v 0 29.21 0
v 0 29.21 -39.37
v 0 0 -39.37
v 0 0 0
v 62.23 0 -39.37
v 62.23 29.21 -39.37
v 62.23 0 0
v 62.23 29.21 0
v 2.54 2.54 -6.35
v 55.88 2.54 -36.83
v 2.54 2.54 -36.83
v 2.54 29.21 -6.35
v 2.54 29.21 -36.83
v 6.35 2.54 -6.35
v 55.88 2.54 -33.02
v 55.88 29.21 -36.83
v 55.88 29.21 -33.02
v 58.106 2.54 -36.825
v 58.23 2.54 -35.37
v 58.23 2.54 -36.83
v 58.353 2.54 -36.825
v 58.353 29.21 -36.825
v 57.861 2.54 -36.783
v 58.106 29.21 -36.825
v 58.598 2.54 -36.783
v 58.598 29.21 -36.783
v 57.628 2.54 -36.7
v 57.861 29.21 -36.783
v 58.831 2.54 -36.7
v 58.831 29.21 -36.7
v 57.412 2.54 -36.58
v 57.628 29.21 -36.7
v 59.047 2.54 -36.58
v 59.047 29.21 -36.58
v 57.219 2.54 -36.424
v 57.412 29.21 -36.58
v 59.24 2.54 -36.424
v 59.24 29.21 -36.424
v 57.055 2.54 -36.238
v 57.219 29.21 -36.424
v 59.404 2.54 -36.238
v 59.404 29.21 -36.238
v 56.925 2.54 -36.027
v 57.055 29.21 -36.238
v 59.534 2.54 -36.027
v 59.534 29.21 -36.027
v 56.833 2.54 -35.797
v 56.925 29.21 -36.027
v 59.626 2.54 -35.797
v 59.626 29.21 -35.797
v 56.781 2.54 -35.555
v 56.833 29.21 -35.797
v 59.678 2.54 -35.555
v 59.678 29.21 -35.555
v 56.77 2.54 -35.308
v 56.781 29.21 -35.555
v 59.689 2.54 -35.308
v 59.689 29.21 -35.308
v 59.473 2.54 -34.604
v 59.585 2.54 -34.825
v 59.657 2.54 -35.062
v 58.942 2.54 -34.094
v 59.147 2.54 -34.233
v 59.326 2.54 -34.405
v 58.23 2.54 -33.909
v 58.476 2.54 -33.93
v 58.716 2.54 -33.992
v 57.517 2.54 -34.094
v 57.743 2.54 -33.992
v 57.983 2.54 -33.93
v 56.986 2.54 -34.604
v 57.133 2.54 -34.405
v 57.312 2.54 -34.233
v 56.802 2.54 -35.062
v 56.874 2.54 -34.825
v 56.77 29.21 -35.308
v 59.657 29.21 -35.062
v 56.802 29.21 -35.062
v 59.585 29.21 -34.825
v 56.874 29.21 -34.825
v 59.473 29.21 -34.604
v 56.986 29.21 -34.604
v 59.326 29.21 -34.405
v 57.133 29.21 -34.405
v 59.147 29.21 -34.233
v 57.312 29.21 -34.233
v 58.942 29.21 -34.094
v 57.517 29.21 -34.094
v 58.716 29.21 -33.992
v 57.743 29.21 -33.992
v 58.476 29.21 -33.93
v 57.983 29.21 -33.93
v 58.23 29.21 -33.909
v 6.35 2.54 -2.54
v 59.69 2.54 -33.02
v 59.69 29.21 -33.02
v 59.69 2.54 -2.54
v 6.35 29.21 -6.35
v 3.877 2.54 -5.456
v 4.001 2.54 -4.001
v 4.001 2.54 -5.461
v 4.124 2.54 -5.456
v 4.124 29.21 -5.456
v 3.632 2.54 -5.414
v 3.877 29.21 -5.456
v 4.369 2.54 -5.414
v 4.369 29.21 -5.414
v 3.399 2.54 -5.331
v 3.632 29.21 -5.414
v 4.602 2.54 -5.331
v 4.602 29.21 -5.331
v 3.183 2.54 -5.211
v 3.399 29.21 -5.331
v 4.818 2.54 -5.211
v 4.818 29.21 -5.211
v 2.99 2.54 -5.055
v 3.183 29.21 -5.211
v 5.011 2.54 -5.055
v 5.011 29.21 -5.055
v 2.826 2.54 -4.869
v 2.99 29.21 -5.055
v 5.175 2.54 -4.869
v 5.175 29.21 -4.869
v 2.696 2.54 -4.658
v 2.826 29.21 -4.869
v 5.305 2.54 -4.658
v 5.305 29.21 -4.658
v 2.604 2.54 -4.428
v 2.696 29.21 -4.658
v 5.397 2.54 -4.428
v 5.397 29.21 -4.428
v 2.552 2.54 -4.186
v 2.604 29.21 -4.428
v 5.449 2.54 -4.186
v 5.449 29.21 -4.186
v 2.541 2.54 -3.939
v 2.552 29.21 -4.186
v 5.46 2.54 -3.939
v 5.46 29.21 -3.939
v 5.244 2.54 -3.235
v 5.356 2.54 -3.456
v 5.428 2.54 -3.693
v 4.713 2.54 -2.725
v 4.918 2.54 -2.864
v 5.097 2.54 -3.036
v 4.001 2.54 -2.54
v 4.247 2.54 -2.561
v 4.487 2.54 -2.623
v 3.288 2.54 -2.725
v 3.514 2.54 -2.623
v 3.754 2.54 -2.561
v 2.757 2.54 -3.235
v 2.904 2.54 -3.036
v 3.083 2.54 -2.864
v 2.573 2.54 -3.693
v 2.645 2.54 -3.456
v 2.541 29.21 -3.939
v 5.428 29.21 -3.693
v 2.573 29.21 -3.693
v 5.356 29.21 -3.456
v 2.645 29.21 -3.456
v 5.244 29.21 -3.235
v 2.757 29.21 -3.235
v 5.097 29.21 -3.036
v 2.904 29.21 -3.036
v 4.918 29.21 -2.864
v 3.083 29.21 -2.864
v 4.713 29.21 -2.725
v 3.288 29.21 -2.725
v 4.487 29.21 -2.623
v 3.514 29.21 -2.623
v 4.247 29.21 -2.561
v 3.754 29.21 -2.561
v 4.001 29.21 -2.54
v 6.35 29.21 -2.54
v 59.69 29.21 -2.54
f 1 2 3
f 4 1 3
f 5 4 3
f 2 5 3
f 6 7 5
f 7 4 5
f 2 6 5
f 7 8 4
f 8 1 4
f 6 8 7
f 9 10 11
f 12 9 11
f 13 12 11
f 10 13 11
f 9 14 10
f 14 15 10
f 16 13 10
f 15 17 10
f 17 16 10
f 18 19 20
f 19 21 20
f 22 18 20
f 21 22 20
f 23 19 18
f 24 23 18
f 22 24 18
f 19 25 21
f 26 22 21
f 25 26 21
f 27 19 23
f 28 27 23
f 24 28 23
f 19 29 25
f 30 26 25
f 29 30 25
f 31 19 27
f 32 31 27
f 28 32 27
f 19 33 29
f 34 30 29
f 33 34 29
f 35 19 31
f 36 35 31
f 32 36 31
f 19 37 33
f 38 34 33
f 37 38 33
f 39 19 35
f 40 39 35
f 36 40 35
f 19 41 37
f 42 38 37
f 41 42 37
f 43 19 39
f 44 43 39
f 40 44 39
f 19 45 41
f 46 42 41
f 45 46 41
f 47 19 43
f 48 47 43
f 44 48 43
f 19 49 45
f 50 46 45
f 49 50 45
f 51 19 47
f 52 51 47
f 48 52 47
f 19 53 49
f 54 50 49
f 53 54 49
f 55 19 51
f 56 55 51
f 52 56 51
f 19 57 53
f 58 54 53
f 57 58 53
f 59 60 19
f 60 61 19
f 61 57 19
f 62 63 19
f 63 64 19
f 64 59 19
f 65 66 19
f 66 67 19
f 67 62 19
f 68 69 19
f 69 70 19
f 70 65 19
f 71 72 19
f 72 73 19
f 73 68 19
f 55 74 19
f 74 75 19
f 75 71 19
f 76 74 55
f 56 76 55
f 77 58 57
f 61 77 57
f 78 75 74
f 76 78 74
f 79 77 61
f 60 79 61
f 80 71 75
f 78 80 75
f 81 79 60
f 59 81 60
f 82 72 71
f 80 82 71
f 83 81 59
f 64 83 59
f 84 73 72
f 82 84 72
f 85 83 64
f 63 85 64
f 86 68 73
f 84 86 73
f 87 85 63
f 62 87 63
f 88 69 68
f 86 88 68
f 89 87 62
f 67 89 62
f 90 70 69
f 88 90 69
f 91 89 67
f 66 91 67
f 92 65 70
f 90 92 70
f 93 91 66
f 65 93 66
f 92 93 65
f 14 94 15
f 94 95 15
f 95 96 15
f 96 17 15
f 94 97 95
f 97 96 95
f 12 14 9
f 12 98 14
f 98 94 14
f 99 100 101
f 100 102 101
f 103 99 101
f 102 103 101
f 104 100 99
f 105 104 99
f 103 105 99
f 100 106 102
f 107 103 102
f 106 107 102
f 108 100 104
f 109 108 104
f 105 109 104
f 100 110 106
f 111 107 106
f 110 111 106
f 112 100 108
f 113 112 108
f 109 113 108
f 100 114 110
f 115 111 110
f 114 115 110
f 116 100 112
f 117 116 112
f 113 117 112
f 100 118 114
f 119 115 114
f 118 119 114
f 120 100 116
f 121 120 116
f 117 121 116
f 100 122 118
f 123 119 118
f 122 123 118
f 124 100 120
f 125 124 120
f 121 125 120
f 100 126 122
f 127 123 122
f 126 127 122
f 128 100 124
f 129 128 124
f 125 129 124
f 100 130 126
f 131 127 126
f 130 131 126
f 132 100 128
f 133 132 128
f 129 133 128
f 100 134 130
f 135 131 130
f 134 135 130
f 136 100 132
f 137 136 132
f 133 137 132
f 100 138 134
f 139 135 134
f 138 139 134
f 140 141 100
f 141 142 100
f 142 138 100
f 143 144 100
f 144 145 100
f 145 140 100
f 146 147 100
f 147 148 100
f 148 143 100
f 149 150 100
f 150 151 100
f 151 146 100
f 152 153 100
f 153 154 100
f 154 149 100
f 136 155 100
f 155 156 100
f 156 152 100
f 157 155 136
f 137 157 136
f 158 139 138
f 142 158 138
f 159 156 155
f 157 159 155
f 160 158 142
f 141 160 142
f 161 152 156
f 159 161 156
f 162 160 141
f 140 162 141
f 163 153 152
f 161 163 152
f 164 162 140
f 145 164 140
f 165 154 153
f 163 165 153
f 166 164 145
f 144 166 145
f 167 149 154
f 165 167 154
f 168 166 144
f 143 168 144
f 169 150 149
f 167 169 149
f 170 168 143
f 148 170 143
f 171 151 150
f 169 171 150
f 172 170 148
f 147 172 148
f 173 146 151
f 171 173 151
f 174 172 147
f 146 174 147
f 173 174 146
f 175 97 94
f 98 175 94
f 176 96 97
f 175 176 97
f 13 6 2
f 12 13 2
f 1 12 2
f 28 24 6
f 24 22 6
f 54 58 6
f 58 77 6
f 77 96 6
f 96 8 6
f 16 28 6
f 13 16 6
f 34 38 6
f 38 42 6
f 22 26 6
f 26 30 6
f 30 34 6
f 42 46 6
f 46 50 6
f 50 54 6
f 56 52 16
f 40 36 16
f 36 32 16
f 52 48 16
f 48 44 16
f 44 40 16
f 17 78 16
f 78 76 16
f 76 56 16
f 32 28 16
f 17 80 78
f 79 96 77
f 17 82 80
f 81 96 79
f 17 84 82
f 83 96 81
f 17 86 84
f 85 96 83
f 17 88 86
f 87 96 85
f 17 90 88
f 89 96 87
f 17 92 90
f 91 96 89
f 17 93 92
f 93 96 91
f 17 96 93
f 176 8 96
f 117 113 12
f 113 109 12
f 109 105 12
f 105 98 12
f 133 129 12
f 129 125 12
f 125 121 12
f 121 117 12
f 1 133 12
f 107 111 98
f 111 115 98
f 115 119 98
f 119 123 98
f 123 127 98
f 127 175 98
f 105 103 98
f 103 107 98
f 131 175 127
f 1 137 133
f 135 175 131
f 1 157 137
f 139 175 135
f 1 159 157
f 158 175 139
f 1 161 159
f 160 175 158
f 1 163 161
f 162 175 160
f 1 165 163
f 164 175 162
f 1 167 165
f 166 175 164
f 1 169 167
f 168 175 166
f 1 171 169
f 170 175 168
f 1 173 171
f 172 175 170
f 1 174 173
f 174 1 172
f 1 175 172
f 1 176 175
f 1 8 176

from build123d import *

# Parameters (mm, degrees)
SKETCH1_W           = 62.23
SKETCH1_H           = 29.21
BOSS_EXTRUDE1_DEPTH = 39.37
SHELL1_T            = -2.54
BOSS_EXTRUDE2_REACH = 31.21


with BuildPart() as part:
    # Sketch1 → Boss-Extrude1 (new body)
    with BuildSketch(Plane.XY):
        with Locations((31.115, 14.605)):
            Rectangle(SKETCH1_W, SKETCH1_H)
    extrude(amount=-BOSS_EXTRUDE1_DEPTH)

    # Shell1
    shell1_openings = [part.faces().sort_by_distance(p)[0] for p in [
        (31.115, 29.21, -19.685),
    ]]
    offset(amount=SHELL1_T, openings=shell1_openings, kind=Kind.INTERSECTION)

    # Sketch2 → Boss-Extrude2 (add, up to next)
    with BuildSketch(Plane(origin=(0, 29.21, 0), x_dir=(1, 0, 0), z_dir=(0, 1, 0)), mode=Mode.PRIVATE) as boss_extrude2_sk1:
        with BuildLine():
            Line((2.54, 2.54), (4.0005, 2.54))
            ThreePointArc((4.0005, 2.54), (2.967770546, 2.967770546), (2.54, 4.0005))
            Line((2.54, 4.0005), (2.54, 2.54))
        make_face()
    boss_extrude2_tool1 = extrude(boss_extrude2_sk1.sketch, amount=-BOSS_EXTRUDE2_REACH, mode=Mode.PRIVATE) - part.part
    add(boss_extrude2_tool1.solids().sort_by_distance((2.866229, 29.21, -2.866229))[0])
    # Sketch2 → Boss-Extrude2 (add, up to next)
    with BuildSketch(Plane(origin=(0, 29.21, 0), x_dir=(1, 0, 0), z_dir=(0, 1, 0)), mode=Mode.PRIVATE) as boss_extrude2_sk2:
        with BuildLine():
            ThreePointArc((58.2295, 36.83), (59.262229454, 36.402229454), (59.69, 35.3695))
            Line((59.69, 35.3695), (59.69, 36.83))
            Line((59.69, 36.83), (58.2295, 36.83))
        make_face()
    boss_extrude2_tool2 = extrude(boss_extrude2_sk2.sketch, amount=-BOSS_EXTRUDE2_REACH, mode=Mode.PRIVATE) - part.part
    add(boss_extrude2_tool2.solids().sort_by_distance((59.363771, 29.21, -36.503771))[0])
    # Sketch2 → Boss-Extrude2 (add, up to next)
    with BuildSketch(Plane(origin=(0, 29.21, 0), x_dir=(1, 0, 0), z_dir=(0, 1, 0)), mode=Mode.PRIVATE) as boss_extrude2_sk3:
        with BuildLine():
            Line((55.88, 33.02), (59.69, 33.02))
            Line((59.69, 33.02), (59.69, 35.3695))
            ThreePointArc((59.69, 35.3695), (57.196770546, 34.336770546), (58.2295, 36.83))
            Line((58.2295, 36.83), (55.88, 36.83))
            Line((55.88, 36.83), (55.88, 33.02))
        make_face()
    boss_extrude2_tool3 = extrude(boss_extrude2_sk3.sketch, amount=-BOSS_EXTRUDE2_REACH, mode=Mode.PRIVATE) - part.part
    add(boss_extrude2_tool3.solids().sort_by_distance((57.05475, 29.21, -36.776118))[0])
    # Sketch2 → Boss-Extrude2 (add, up to next)
    with BuildSketch(Plane(origin=(0, 29.21, 0), x_dir=(1, 0, 0), z_dir=(0, 1, 0)), mode=Mode.PRIVATE) as boss_extrude2_sk4:
        with BuildLine():
            Line((4.0005, 2.54), (6.35, 2.54))
            Line((6.35, 2.54), (6.35, 6.35))
            Line((6.35, 6.35), (2.54, 6.35))
            Line((2.54, 6.35), (2.54, 4.0005))
            ThreePointArc((2.54, 4.0005), (4.0005, 5.461), (5.461, 4.0005))
            ThreePointArc((5.461, 4.0005), (5.033229454, 2.967770546), (4.0005, 2.54))
        make_face()
    boss_extrude2_tool4 = extrude(boss_extrude2_sk4.sketch, amount=-BOSS_EXTRUDE2_REACH, mode=Mode.PRIVATE) - part.part
    add(boss_extrude2_tool4.solids().sort_by_distance((4.0005, 29.21, -5.514882))[0])


solid = part.part
